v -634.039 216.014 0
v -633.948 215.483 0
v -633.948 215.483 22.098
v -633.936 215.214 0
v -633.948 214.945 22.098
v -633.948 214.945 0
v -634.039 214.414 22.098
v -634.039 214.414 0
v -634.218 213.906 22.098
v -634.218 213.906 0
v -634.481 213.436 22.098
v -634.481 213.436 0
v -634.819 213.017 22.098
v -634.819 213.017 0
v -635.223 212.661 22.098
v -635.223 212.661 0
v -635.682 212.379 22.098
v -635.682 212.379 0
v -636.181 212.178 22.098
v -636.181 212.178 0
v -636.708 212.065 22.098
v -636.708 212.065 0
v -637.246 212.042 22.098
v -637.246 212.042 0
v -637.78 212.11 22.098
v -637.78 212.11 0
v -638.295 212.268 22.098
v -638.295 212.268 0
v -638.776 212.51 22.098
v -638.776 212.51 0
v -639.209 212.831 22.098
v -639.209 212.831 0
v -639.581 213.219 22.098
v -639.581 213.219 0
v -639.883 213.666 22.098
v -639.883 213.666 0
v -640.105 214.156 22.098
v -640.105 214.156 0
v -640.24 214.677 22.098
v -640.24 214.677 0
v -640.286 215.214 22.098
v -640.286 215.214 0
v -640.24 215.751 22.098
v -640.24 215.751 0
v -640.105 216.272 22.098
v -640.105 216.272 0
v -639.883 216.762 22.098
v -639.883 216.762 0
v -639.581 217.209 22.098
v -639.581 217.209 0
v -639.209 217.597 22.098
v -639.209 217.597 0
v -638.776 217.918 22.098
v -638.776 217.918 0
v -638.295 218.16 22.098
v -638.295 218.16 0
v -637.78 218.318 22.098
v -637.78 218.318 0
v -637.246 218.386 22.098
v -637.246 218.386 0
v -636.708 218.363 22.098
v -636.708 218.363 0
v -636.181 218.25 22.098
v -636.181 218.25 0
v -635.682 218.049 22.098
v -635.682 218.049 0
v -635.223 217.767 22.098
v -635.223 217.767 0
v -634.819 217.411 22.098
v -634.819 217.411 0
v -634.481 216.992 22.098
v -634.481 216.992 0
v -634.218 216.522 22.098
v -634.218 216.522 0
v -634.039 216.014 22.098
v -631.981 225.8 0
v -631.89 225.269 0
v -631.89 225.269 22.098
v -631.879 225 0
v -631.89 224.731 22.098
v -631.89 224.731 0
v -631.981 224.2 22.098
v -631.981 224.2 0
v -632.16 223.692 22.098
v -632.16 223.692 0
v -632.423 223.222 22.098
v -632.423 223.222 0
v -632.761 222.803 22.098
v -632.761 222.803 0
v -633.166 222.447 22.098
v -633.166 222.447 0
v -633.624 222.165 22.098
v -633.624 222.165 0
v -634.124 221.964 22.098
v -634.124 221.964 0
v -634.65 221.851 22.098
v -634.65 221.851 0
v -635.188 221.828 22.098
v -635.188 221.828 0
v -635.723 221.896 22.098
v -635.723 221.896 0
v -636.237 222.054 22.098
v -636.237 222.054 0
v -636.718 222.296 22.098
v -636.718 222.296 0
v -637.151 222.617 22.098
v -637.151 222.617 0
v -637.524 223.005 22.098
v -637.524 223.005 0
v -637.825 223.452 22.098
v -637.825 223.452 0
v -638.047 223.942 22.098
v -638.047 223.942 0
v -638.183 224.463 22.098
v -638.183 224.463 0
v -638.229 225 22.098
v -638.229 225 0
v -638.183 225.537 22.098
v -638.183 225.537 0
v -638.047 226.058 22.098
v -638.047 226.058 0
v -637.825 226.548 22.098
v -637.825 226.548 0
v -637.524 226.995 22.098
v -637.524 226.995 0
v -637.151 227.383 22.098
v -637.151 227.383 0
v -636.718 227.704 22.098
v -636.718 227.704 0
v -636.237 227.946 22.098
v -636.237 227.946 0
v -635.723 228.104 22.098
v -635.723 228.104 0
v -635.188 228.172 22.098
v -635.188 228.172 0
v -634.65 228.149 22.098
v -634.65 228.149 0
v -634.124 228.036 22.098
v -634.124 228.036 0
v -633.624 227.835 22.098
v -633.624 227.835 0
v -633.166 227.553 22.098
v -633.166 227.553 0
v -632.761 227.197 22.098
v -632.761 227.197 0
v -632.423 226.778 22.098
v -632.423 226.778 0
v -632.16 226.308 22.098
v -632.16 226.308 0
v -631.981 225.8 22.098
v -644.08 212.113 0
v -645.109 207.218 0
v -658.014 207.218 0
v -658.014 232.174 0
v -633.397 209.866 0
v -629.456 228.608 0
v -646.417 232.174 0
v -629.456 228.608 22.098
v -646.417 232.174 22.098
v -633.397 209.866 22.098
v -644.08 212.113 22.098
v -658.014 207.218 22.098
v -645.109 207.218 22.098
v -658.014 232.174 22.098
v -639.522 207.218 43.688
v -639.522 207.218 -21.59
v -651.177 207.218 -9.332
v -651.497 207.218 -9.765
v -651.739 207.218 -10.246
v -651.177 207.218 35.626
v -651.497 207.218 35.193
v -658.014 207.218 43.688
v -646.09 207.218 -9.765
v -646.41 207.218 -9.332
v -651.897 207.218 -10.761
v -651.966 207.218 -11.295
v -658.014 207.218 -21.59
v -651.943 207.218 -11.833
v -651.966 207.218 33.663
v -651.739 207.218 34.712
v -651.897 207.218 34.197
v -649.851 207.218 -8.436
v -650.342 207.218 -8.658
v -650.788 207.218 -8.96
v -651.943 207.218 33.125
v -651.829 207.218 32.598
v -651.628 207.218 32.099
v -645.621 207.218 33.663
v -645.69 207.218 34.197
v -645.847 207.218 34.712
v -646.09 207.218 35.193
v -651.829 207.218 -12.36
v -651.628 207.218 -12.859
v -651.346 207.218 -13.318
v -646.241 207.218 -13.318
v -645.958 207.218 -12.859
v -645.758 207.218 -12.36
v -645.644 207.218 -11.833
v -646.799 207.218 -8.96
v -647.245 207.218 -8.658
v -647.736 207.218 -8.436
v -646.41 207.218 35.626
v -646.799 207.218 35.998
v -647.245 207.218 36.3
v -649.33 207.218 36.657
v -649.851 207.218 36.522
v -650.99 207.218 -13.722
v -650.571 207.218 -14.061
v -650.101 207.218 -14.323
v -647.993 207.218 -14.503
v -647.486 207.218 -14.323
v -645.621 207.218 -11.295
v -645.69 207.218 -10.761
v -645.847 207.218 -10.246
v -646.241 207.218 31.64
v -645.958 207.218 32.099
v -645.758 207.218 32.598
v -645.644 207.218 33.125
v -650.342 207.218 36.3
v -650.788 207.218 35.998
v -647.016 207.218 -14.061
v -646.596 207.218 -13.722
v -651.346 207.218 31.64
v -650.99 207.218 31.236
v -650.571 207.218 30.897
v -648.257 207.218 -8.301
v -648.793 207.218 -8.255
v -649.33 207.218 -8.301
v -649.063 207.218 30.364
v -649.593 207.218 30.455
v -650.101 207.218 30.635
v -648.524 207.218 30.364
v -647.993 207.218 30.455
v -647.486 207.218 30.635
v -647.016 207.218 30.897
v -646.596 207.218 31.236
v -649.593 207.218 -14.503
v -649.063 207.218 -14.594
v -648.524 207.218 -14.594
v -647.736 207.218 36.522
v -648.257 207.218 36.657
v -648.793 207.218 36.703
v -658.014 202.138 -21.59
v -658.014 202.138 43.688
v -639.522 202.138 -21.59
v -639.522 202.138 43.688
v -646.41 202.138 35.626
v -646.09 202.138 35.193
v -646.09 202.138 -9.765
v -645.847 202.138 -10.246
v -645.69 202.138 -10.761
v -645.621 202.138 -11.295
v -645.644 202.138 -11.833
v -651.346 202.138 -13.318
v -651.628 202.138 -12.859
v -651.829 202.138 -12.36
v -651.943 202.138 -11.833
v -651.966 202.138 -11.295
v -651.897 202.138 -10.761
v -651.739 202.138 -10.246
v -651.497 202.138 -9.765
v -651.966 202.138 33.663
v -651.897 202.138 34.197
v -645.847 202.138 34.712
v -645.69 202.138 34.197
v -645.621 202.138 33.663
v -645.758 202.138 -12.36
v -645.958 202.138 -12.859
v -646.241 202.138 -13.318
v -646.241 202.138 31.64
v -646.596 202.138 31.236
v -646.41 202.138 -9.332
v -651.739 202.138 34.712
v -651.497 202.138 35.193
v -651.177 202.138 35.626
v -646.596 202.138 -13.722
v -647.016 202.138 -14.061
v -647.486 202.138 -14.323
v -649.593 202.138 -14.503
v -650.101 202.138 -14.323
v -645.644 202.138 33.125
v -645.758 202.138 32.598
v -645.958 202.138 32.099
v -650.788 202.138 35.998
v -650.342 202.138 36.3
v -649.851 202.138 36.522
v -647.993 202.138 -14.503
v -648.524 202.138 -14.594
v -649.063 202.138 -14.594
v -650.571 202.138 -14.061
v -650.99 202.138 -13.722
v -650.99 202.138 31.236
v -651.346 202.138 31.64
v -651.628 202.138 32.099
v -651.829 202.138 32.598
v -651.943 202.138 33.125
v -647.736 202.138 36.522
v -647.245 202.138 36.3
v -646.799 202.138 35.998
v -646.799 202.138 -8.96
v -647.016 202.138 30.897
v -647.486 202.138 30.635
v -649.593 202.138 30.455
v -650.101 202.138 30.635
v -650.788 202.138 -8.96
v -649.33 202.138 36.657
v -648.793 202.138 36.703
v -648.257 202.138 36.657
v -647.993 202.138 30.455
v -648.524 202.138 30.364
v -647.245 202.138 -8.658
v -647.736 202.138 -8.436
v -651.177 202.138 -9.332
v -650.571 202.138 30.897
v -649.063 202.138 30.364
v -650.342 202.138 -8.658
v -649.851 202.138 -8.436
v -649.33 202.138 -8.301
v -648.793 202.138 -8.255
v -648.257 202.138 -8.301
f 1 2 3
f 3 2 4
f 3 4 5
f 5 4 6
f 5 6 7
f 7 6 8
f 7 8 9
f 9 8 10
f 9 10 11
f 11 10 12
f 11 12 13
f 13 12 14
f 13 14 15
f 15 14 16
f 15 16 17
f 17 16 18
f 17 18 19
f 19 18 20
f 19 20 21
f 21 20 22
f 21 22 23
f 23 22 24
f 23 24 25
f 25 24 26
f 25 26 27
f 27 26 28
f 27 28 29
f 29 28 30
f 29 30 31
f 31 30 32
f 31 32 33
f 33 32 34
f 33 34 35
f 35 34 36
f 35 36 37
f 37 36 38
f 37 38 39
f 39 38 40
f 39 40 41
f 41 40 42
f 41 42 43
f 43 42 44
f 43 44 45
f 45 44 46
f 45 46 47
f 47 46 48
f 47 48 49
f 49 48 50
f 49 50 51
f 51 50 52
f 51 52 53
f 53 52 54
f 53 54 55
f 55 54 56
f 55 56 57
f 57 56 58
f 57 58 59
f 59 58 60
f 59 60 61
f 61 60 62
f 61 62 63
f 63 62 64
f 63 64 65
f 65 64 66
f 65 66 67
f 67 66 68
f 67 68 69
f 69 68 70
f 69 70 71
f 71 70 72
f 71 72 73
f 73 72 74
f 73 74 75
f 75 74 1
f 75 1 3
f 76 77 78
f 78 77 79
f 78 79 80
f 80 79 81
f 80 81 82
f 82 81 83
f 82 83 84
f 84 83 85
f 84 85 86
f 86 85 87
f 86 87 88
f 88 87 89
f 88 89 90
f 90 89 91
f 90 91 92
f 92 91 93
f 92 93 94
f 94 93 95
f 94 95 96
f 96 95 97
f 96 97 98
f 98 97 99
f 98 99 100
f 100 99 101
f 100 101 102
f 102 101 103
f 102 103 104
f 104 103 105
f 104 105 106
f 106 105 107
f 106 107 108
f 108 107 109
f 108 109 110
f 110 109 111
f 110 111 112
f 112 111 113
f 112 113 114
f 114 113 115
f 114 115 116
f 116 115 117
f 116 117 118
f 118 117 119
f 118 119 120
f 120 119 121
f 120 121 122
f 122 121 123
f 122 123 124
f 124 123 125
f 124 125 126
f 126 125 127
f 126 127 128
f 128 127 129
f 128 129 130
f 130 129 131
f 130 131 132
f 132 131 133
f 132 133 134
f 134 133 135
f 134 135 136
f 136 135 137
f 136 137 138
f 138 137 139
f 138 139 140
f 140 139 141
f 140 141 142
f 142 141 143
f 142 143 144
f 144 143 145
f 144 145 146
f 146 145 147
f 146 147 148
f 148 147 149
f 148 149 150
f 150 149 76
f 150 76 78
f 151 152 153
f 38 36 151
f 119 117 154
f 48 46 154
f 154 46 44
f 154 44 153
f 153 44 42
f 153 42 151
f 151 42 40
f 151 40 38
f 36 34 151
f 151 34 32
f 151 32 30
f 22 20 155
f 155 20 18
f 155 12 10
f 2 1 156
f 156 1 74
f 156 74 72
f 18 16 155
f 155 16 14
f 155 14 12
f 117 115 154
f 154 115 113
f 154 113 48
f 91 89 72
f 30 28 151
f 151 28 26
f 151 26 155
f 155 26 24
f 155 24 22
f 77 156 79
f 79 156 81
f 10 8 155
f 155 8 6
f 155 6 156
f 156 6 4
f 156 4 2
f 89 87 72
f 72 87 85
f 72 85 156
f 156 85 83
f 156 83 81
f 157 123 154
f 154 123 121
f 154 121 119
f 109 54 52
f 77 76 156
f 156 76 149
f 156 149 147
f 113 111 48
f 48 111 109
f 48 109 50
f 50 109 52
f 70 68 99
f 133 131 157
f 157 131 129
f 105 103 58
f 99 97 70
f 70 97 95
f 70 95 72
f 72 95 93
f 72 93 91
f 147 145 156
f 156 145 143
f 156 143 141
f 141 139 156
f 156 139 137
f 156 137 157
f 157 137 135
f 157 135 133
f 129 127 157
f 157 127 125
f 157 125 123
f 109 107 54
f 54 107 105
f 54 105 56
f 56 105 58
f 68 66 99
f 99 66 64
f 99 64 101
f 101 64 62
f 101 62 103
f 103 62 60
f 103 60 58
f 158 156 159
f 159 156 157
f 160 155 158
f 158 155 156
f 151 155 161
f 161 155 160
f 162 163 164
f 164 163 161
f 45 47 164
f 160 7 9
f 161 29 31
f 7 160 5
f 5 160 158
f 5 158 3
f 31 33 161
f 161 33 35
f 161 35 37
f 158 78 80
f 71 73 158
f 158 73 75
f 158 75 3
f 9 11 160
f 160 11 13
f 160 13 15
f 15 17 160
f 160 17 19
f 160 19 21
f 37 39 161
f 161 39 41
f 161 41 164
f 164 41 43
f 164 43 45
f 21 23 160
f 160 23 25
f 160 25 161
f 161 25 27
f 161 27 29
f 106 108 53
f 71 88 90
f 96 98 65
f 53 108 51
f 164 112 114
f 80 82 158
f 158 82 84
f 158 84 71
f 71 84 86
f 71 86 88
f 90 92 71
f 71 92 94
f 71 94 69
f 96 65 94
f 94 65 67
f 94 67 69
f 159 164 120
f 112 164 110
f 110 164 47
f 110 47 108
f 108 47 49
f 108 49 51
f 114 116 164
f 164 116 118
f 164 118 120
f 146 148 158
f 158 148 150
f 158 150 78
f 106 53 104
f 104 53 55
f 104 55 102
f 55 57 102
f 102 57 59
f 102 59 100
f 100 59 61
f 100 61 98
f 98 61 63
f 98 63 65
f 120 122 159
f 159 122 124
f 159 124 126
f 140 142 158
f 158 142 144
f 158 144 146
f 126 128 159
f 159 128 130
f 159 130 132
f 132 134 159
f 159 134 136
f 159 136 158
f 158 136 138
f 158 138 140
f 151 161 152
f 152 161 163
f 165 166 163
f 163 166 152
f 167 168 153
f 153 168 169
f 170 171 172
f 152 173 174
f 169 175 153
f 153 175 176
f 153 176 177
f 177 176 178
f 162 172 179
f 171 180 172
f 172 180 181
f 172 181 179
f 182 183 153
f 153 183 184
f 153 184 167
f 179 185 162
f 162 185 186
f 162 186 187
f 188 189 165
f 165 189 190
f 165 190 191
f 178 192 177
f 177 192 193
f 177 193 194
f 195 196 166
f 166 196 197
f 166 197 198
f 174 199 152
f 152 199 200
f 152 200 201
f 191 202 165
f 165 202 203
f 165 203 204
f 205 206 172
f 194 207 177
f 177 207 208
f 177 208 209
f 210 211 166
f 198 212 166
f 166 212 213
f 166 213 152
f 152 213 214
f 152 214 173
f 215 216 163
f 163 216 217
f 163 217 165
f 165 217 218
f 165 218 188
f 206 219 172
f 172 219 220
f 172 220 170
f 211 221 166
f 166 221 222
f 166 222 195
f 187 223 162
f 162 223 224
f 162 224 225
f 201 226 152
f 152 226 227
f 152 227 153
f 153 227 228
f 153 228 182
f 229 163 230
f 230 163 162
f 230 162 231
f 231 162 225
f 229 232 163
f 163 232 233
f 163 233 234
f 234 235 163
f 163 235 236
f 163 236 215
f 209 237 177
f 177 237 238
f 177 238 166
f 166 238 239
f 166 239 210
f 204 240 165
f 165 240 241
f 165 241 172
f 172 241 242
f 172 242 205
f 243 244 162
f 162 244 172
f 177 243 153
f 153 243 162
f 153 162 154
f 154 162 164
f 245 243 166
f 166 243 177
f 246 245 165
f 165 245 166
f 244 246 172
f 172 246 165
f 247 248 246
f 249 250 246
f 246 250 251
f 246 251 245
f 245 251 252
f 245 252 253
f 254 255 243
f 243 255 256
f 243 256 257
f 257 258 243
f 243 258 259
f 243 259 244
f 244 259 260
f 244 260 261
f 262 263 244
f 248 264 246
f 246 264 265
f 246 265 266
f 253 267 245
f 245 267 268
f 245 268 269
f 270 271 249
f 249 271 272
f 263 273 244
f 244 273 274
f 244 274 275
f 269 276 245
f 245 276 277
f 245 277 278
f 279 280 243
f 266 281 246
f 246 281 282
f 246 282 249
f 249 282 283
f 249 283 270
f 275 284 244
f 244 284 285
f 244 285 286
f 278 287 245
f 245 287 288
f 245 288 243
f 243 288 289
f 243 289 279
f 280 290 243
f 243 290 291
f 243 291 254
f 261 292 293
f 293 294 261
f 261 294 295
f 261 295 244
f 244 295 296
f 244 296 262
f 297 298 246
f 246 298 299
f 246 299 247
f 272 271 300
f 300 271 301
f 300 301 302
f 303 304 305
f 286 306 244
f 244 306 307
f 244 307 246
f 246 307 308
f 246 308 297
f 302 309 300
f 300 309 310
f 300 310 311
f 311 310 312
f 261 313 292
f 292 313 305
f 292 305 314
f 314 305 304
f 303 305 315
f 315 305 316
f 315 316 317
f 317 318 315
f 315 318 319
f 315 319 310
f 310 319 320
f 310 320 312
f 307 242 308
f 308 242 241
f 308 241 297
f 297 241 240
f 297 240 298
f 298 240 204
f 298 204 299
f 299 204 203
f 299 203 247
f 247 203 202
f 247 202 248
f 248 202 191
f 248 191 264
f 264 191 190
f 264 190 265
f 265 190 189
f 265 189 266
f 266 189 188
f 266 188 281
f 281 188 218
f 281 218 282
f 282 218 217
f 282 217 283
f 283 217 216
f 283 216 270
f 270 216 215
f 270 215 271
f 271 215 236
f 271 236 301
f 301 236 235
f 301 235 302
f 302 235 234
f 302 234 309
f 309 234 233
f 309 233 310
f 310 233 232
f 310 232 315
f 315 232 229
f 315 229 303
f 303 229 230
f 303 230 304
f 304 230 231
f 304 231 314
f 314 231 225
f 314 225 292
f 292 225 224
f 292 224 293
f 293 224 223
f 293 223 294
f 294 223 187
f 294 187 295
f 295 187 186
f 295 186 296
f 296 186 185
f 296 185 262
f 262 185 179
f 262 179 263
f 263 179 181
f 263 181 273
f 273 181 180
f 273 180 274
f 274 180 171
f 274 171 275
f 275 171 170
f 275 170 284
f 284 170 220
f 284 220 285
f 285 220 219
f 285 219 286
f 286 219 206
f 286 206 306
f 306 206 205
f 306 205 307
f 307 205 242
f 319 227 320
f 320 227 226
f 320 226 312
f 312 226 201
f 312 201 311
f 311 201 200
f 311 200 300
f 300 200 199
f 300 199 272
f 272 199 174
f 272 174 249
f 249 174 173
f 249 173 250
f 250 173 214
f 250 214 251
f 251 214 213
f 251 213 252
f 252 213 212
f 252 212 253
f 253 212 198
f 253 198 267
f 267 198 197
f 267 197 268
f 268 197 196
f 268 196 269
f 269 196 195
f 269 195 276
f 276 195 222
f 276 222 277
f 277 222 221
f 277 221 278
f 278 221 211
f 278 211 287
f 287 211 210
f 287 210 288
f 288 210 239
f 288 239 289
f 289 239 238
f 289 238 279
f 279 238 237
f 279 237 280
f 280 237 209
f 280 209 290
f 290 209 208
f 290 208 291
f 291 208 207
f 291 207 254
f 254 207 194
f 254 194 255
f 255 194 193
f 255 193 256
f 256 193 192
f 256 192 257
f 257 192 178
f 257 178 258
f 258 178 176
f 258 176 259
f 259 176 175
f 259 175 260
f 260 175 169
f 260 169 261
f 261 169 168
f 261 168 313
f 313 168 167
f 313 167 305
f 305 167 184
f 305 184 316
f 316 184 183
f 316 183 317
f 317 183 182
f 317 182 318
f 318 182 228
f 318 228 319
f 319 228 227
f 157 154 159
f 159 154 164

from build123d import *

# Parameters (mm, degrees)
SKETCH2_R           = 3.175
BOSS_EXTRUDE1_DEPTH = 22.098
SKETCH3_W           = 6.414942463
SKETCH3_H           = 22.098
BOSS_EXTRUDE2_DEPTH = 6.35
SKETCH5_W           = 18.491886748
SKETCH5_H           = 65.278
SKETCH5_R           = 3.175
BOSS_EXTRUDE4_DEPTH = 5.08
BOSS_EXTRUDE7_REACH = 239.969
SKETCH7_W           = 22.098
SKETCH7_H           = 24.955967439


with BuildPart() as part:
    # Sketch2 → Boss-Extrude1 (new body)
    with BuildSketch(Plane.XY):
        Polygon((-633.396746705, 209.866473294), (-629.456250373, 228.608305414), (-646.417262265, 232.174381811), (-650.357758597, 213.432549691), align=None)
        with Locations(Location((-637.11116423, 215.213960129, 0), (0, 0, 180))):
            Circle(SKETCH2_R, mode=Mode.SUBTRACT)
        with Locations(Location((-635.053635704, 225, 0), (0, 0, 180))):
            Circle(SKETCH2_R, mode=Mode.SUBTRACT)
    extrude(amount=BOSS_EXTRUDE1_DEPTH)

    # Sketch3 → Boss-Extrude2 (add)
    with BuildSketch(Plane(origin=(15.442364745, 73.44714554, 0), x_dir=(0.9786039871389689, -0.20575285260650172, 0), z_dir=(-0.20575285260650172, -0.9786039871389689, 0))):
        with Locations((-677.149580337, 11.049)):
            Rectangle(SKETCH3_W, SKETCH3_H)
    extrude(amount=BOSS_EXTRUDE2_DEPTH)

    # Sketch5 → Boss-Extrude4 (add)
    with BuildSketch(Plane(origin=(0, 207.218414372, 0), x_dir=(1, 0, 0), z_dir=(0, 1, 0))):
        with Locations((-648.768345837, -11.049)):
            Rectangle(SKETCH5_W, SKETCH5_H)
        with Locations(Location((-648.793402463, -33.528, 0), (0, 0, 270))):
            Circle(SKETCH5_R, mode=Mode.SUBTRACT)
        with Locations(Location((-648.793402463, 11.43, 0), (0, 0, 270))):
            Circle(SKETCH5_R, mode=Mode.SUBTRACT)
    extrude(amount=-BOSS_EXTRUDE4_DEPTH)

    # Boss-Extrude7: up to this face of the body (flat: up to its plane)
    boss_extrude7_end = Plane(part.part.faces().sort_by_distance((-649.040775738, 219.696398091, 11.049))[0])
    # Sketch7 → Boss-Extrude7 (add, up to the picked face)
    with BuildSketch(Plane.ZY.offset(658.014289211), mode=Mode.PRIVATE) as boss_extrude7_sk1:
        with Locations((11.049, 219.696398092)):
            Rectangle(SKETCH7_W, SKETCH7_H)
    boss_extrude7_tool1 = split(extrude(boss_extrude7_sk1.sketch, amount=-BOSS_EXTRUDE7_REACH, mode=Mode.PRIVATE), bisect_by=boss_extrude7_end, keep=Keep.BOTH, mode=Mode.PRIVATE)
    add(boss_extrude7_tool1.solids().sort_by(Axis((-658.014289, 219.696398, 11.049), (1, 0, 0)))[0])


solid = part.part
